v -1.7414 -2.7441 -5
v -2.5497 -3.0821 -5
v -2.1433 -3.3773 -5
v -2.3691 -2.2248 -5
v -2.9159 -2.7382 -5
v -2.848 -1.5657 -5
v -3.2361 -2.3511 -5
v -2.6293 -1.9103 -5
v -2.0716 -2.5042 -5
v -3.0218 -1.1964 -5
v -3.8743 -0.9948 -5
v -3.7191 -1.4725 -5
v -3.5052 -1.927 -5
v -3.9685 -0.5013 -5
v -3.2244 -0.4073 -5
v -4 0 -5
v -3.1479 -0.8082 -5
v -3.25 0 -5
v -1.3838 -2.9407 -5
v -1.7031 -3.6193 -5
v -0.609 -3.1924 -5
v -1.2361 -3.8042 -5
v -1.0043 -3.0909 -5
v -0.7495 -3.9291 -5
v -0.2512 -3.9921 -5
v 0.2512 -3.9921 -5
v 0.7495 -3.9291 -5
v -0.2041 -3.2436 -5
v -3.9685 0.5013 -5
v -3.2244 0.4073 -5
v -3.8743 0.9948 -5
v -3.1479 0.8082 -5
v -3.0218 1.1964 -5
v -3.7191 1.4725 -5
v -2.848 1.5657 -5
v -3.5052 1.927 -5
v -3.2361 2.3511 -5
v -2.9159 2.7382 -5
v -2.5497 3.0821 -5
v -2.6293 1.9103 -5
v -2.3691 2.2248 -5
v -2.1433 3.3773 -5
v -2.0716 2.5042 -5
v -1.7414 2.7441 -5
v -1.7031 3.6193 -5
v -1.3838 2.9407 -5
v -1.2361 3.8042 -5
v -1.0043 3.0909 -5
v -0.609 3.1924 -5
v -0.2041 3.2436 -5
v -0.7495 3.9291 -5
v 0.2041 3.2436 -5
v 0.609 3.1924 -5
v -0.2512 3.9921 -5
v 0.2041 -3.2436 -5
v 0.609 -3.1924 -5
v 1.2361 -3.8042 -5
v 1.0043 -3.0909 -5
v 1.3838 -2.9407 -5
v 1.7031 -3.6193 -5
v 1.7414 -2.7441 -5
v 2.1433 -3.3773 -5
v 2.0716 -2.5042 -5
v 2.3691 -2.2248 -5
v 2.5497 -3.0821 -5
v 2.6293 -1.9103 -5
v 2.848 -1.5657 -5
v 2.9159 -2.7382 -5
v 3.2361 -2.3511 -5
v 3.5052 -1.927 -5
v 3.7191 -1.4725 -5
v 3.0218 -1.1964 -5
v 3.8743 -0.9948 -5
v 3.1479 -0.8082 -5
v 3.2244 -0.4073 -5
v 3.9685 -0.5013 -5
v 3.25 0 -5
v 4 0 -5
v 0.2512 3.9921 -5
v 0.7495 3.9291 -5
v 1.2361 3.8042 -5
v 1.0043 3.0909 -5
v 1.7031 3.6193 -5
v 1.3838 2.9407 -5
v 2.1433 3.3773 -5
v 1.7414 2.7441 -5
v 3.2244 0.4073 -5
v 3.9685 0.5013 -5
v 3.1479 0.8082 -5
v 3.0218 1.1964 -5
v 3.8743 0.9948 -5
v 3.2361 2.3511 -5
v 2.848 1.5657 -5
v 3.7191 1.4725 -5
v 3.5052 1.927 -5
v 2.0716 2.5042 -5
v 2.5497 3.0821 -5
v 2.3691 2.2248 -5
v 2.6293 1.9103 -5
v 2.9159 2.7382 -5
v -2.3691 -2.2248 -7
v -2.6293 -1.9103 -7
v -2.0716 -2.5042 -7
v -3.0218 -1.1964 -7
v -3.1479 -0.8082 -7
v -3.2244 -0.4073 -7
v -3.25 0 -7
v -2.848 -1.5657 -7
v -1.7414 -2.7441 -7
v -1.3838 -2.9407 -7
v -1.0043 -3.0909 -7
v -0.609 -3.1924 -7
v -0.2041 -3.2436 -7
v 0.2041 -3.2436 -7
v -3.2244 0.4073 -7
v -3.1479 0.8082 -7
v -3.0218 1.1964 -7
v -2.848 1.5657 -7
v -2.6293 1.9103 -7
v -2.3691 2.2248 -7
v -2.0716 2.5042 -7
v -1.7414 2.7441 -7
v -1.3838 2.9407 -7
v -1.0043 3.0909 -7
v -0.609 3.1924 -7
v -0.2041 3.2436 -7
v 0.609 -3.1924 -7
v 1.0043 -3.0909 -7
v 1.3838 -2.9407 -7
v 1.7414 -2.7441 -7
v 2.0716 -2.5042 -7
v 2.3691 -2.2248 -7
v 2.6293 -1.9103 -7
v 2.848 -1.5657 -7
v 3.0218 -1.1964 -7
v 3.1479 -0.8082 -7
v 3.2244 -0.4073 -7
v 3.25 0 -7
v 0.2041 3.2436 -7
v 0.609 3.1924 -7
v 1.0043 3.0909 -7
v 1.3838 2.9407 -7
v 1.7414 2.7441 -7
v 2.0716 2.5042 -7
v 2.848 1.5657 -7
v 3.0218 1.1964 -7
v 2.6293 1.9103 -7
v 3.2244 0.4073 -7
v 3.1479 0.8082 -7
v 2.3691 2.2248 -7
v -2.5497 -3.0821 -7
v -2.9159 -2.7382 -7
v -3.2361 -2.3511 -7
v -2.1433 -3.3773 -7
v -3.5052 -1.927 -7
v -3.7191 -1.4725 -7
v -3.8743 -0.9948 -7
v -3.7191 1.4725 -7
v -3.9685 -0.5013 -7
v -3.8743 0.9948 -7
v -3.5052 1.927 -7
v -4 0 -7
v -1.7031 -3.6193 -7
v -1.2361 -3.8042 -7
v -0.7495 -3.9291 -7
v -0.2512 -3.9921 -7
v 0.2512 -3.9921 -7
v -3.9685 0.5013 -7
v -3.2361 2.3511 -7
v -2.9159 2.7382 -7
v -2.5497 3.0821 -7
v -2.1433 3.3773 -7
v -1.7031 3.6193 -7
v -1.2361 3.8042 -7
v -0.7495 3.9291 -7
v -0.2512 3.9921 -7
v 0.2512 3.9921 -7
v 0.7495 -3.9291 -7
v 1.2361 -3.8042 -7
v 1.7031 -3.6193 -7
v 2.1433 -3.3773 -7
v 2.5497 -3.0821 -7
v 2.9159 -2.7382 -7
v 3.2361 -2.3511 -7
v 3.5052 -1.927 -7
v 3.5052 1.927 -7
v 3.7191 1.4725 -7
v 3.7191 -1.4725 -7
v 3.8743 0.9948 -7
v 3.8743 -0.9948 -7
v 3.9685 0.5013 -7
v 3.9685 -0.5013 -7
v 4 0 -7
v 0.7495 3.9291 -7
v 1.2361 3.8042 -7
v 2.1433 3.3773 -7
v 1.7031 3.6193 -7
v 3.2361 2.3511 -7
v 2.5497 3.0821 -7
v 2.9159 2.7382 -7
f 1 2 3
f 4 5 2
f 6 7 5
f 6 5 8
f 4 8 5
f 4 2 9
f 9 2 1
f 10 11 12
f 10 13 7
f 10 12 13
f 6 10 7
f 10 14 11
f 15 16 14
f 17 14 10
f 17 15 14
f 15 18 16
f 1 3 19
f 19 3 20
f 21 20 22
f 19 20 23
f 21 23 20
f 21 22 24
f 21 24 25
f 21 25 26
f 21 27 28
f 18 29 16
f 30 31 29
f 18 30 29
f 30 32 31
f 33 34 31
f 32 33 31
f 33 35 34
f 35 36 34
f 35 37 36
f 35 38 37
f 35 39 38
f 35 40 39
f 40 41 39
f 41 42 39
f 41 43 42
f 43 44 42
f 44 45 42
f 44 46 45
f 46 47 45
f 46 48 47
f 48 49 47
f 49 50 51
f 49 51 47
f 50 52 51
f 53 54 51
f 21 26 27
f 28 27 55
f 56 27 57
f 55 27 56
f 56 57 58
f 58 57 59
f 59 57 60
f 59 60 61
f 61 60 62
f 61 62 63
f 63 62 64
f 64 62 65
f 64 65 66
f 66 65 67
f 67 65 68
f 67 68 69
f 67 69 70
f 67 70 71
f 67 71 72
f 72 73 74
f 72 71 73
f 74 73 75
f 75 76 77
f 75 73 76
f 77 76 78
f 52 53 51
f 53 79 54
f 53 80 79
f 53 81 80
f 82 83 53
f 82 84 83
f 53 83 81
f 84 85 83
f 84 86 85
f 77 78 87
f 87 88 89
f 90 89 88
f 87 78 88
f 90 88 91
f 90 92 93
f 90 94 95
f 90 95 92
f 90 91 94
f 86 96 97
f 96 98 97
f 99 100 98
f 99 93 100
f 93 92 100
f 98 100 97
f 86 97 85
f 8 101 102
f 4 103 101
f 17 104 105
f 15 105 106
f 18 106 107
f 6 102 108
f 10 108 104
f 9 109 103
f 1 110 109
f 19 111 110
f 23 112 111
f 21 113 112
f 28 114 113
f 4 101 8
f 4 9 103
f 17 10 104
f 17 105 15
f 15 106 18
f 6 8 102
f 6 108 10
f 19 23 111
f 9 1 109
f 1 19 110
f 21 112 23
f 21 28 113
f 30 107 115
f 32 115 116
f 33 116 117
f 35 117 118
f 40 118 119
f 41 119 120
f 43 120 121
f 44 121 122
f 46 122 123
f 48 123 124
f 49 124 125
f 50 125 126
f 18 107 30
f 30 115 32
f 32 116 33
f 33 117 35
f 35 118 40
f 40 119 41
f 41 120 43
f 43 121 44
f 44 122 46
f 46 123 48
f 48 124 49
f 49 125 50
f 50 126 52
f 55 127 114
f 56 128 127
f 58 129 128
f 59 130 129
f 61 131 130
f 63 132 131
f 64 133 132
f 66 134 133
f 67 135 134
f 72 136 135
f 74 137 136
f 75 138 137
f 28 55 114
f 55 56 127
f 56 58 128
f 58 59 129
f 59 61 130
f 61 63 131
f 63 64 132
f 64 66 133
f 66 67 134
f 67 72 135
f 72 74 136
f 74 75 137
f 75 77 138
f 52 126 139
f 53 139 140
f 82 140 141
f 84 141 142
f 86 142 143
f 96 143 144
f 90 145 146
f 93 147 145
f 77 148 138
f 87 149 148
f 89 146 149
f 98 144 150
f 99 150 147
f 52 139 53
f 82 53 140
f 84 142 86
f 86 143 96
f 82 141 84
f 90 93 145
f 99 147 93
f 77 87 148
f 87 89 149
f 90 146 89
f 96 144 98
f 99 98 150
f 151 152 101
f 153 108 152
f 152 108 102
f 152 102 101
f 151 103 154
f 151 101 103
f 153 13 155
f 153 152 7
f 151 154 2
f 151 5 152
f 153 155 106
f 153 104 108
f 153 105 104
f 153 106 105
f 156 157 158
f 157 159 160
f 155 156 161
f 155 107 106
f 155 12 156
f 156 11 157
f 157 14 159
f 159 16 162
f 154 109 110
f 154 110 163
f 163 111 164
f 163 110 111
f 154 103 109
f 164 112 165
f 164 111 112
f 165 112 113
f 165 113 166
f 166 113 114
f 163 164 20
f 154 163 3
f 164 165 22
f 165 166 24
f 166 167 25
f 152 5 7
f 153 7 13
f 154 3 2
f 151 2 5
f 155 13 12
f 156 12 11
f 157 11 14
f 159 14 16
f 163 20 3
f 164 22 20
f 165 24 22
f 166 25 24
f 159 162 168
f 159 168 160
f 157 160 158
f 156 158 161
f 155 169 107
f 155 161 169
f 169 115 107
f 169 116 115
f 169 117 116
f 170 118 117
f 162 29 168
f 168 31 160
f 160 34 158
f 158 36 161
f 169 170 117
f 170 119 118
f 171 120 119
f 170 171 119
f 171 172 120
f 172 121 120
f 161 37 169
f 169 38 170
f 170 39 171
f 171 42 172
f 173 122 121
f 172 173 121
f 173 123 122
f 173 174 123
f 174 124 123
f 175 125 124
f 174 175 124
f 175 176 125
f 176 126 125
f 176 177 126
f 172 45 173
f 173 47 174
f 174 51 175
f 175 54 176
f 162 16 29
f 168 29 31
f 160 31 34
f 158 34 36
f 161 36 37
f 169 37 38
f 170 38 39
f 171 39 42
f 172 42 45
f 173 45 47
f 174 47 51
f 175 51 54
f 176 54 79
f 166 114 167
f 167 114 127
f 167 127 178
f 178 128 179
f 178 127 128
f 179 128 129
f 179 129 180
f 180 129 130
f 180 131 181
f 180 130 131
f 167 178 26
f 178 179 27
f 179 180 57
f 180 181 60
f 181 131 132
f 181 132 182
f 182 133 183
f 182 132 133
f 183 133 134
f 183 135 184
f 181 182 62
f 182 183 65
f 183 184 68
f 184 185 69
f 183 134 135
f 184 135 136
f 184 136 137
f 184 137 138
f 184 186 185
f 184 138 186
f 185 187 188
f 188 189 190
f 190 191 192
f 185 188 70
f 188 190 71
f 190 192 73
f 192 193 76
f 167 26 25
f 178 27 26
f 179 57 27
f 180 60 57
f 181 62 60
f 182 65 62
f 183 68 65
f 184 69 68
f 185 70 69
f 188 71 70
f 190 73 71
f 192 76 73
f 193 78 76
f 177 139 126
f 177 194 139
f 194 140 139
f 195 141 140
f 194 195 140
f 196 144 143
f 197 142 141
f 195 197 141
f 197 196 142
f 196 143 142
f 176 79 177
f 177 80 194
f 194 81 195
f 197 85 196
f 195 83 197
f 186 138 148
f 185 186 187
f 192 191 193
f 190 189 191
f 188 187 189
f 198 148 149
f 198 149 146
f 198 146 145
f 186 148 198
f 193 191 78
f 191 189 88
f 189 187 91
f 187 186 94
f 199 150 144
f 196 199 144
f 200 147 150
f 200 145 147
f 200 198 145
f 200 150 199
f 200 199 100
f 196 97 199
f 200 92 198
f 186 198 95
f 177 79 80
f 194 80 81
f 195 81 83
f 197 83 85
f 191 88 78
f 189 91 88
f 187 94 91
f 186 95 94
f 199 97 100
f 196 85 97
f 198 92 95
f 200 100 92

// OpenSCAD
$fn = 50;

difference() {
	union() {
		translate(v = [0, 0, -7.0]) {
			cylinder(h = 10.0, r = 4.0);
		}
	}
	union() {
		translate(v = [0, 0, 0]) {
			rotate(a = [0, 0, 0]) {
				difference() {
					union() {
						translate(v = [0, 0, -5]) {
							linear_extrude(height = 5) {
								polygon(points = [[5.914249999999999, 0.0], [2.957125, 5.1218907443321156], [-2.9571249999999982, 5.1218907443321156], [-5.914249999999999, 7.242867331857232e-16], [-2.9571250000000022, -5.121890744332115], [2.9571249999999956, -5.121890744332118]]);
							}
						}
					}
					union();
				}
			}
		}
		#cylinder(h = 3, r = 6.25);
		#translate(v = [0, 0, -100.0]) {
			cylinder(h = 200, r = 3.25);
		}
	}
}
